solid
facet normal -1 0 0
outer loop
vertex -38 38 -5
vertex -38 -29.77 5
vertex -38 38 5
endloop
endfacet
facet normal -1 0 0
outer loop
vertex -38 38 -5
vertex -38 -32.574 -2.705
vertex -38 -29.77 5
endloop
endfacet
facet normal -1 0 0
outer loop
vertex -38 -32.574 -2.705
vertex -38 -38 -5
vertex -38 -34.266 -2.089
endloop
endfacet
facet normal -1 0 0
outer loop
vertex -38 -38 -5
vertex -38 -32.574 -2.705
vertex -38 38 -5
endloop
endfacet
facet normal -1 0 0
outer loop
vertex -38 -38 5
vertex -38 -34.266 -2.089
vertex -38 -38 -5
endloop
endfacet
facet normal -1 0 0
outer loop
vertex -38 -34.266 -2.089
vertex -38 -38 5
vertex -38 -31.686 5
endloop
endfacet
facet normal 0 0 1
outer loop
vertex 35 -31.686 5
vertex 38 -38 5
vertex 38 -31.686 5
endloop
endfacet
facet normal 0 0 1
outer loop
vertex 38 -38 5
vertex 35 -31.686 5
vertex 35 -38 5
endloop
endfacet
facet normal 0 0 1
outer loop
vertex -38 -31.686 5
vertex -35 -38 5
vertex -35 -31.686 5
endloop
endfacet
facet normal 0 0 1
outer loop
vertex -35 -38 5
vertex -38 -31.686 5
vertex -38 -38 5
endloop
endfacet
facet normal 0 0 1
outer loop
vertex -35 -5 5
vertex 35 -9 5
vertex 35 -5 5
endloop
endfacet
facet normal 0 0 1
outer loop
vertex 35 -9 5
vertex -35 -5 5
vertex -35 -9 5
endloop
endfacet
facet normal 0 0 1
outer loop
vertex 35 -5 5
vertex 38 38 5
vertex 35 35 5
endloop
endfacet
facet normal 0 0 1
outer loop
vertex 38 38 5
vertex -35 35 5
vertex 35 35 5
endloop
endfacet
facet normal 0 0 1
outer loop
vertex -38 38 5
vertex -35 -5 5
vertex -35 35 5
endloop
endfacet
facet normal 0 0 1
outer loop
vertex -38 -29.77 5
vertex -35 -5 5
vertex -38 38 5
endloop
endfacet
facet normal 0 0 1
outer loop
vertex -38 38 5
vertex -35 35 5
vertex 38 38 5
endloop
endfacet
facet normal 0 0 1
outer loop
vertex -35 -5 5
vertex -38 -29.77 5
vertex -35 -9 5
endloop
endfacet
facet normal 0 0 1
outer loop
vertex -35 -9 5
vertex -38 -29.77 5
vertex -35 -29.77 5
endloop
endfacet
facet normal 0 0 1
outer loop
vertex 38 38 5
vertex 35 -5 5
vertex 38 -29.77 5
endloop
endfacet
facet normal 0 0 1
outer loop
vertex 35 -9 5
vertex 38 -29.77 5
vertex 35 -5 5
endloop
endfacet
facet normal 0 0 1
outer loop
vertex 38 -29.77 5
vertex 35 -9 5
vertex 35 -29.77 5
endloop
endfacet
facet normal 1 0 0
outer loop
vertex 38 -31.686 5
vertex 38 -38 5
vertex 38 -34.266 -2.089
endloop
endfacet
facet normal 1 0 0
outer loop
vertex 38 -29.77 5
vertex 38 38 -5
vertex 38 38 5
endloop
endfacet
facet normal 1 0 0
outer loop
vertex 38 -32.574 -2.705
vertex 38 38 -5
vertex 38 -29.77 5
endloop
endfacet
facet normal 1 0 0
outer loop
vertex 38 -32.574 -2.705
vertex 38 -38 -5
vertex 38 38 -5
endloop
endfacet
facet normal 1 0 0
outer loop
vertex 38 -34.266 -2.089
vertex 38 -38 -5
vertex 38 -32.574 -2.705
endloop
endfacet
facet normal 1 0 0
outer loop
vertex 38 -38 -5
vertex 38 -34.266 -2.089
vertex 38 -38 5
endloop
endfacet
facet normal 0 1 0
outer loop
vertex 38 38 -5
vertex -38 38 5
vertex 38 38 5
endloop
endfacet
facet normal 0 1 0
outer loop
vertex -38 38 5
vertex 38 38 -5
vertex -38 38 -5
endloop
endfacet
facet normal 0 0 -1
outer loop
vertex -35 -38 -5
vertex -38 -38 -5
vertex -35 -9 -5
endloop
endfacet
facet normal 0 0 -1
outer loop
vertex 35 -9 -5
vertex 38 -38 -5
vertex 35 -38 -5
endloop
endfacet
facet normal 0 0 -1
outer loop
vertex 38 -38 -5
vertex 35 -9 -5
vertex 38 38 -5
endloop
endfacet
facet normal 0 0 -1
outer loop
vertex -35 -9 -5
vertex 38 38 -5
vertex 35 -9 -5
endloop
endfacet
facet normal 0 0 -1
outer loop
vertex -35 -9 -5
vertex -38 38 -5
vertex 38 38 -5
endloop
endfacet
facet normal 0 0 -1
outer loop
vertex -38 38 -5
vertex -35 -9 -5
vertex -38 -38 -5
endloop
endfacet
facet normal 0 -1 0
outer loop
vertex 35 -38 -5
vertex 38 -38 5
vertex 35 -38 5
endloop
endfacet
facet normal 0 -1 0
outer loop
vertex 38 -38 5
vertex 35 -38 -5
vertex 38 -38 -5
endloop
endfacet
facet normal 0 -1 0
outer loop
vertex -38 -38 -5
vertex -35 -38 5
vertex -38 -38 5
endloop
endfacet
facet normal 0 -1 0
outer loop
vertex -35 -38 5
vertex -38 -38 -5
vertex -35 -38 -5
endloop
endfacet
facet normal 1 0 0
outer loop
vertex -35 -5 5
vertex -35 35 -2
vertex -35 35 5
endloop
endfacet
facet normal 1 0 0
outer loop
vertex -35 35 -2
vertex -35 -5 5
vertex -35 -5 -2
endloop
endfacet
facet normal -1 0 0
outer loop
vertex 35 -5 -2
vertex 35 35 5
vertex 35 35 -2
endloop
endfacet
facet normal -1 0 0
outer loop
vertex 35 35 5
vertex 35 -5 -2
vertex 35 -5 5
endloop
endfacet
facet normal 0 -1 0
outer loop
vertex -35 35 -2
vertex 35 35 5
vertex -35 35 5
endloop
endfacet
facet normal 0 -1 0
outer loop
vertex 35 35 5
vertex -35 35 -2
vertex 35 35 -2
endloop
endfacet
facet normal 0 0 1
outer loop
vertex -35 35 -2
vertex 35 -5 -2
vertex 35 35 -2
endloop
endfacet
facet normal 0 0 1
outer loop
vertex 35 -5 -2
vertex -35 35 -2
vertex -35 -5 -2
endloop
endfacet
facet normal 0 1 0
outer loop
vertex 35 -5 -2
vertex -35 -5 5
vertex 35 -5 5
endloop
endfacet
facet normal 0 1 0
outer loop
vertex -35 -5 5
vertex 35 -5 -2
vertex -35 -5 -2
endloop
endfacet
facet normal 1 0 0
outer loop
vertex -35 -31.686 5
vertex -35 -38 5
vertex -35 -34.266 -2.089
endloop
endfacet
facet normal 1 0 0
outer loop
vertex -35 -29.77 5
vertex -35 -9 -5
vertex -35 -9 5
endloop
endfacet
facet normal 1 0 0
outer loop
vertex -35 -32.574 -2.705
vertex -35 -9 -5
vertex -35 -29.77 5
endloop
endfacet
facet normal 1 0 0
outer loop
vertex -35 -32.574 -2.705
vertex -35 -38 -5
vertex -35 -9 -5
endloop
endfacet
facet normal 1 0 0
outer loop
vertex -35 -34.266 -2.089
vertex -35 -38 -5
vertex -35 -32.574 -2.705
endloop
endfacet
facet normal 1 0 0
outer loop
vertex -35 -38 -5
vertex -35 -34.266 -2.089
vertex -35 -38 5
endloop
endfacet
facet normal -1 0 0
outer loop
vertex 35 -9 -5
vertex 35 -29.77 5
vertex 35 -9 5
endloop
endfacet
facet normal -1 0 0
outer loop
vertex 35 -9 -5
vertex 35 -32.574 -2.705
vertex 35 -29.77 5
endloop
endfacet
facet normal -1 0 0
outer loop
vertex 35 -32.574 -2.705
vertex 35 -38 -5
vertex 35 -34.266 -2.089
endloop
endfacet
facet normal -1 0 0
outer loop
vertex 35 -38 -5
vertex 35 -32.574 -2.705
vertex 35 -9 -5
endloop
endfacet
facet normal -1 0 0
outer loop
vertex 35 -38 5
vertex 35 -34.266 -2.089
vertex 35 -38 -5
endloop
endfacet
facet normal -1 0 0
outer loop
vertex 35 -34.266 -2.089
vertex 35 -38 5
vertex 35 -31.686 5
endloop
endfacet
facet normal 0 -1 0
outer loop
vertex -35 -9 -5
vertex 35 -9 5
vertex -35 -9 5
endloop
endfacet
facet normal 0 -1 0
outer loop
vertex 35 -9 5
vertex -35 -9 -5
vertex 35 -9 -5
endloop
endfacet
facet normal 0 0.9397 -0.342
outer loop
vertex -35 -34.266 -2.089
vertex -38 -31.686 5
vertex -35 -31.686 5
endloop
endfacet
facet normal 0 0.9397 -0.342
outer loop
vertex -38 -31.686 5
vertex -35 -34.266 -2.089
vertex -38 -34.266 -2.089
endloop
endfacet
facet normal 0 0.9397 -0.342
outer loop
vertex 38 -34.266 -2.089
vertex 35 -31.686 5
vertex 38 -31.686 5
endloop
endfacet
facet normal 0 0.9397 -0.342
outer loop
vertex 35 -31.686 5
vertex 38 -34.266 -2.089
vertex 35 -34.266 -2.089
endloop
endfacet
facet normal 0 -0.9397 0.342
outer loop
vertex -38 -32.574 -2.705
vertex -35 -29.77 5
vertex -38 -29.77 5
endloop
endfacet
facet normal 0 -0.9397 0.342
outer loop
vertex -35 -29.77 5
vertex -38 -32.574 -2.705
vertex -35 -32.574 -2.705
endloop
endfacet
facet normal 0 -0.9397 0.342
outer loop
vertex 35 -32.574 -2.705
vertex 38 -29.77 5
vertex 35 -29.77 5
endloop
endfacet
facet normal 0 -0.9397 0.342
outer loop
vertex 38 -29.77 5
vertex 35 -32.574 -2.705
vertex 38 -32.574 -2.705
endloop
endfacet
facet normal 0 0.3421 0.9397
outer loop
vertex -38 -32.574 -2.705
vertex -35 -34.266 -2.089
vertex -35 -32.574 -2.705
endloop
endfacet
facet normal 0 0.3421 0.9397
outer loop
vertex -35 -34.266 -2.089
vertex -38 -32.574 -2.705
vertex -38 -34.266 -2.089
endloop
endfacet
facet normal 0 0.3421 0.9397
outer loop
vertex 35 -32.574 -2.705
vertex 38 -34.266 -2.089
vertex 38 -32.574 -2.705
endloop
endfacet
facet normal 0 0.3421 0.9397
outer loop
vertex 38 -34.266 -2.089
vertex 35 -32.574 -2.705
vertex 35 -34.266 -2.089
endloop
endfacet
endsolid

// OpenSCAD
difference() {
    cube([76, 76, 10], center=true);
    translate([0,15,3]) cube([70, 40, 10], center=true);
    translate([0,-29,0]) cube([70, 40, 12], center=true);
    translate([0, -30, 7]) rotate([70, 0, 0]) cube([80, 20, 1.8], center=true);
}
